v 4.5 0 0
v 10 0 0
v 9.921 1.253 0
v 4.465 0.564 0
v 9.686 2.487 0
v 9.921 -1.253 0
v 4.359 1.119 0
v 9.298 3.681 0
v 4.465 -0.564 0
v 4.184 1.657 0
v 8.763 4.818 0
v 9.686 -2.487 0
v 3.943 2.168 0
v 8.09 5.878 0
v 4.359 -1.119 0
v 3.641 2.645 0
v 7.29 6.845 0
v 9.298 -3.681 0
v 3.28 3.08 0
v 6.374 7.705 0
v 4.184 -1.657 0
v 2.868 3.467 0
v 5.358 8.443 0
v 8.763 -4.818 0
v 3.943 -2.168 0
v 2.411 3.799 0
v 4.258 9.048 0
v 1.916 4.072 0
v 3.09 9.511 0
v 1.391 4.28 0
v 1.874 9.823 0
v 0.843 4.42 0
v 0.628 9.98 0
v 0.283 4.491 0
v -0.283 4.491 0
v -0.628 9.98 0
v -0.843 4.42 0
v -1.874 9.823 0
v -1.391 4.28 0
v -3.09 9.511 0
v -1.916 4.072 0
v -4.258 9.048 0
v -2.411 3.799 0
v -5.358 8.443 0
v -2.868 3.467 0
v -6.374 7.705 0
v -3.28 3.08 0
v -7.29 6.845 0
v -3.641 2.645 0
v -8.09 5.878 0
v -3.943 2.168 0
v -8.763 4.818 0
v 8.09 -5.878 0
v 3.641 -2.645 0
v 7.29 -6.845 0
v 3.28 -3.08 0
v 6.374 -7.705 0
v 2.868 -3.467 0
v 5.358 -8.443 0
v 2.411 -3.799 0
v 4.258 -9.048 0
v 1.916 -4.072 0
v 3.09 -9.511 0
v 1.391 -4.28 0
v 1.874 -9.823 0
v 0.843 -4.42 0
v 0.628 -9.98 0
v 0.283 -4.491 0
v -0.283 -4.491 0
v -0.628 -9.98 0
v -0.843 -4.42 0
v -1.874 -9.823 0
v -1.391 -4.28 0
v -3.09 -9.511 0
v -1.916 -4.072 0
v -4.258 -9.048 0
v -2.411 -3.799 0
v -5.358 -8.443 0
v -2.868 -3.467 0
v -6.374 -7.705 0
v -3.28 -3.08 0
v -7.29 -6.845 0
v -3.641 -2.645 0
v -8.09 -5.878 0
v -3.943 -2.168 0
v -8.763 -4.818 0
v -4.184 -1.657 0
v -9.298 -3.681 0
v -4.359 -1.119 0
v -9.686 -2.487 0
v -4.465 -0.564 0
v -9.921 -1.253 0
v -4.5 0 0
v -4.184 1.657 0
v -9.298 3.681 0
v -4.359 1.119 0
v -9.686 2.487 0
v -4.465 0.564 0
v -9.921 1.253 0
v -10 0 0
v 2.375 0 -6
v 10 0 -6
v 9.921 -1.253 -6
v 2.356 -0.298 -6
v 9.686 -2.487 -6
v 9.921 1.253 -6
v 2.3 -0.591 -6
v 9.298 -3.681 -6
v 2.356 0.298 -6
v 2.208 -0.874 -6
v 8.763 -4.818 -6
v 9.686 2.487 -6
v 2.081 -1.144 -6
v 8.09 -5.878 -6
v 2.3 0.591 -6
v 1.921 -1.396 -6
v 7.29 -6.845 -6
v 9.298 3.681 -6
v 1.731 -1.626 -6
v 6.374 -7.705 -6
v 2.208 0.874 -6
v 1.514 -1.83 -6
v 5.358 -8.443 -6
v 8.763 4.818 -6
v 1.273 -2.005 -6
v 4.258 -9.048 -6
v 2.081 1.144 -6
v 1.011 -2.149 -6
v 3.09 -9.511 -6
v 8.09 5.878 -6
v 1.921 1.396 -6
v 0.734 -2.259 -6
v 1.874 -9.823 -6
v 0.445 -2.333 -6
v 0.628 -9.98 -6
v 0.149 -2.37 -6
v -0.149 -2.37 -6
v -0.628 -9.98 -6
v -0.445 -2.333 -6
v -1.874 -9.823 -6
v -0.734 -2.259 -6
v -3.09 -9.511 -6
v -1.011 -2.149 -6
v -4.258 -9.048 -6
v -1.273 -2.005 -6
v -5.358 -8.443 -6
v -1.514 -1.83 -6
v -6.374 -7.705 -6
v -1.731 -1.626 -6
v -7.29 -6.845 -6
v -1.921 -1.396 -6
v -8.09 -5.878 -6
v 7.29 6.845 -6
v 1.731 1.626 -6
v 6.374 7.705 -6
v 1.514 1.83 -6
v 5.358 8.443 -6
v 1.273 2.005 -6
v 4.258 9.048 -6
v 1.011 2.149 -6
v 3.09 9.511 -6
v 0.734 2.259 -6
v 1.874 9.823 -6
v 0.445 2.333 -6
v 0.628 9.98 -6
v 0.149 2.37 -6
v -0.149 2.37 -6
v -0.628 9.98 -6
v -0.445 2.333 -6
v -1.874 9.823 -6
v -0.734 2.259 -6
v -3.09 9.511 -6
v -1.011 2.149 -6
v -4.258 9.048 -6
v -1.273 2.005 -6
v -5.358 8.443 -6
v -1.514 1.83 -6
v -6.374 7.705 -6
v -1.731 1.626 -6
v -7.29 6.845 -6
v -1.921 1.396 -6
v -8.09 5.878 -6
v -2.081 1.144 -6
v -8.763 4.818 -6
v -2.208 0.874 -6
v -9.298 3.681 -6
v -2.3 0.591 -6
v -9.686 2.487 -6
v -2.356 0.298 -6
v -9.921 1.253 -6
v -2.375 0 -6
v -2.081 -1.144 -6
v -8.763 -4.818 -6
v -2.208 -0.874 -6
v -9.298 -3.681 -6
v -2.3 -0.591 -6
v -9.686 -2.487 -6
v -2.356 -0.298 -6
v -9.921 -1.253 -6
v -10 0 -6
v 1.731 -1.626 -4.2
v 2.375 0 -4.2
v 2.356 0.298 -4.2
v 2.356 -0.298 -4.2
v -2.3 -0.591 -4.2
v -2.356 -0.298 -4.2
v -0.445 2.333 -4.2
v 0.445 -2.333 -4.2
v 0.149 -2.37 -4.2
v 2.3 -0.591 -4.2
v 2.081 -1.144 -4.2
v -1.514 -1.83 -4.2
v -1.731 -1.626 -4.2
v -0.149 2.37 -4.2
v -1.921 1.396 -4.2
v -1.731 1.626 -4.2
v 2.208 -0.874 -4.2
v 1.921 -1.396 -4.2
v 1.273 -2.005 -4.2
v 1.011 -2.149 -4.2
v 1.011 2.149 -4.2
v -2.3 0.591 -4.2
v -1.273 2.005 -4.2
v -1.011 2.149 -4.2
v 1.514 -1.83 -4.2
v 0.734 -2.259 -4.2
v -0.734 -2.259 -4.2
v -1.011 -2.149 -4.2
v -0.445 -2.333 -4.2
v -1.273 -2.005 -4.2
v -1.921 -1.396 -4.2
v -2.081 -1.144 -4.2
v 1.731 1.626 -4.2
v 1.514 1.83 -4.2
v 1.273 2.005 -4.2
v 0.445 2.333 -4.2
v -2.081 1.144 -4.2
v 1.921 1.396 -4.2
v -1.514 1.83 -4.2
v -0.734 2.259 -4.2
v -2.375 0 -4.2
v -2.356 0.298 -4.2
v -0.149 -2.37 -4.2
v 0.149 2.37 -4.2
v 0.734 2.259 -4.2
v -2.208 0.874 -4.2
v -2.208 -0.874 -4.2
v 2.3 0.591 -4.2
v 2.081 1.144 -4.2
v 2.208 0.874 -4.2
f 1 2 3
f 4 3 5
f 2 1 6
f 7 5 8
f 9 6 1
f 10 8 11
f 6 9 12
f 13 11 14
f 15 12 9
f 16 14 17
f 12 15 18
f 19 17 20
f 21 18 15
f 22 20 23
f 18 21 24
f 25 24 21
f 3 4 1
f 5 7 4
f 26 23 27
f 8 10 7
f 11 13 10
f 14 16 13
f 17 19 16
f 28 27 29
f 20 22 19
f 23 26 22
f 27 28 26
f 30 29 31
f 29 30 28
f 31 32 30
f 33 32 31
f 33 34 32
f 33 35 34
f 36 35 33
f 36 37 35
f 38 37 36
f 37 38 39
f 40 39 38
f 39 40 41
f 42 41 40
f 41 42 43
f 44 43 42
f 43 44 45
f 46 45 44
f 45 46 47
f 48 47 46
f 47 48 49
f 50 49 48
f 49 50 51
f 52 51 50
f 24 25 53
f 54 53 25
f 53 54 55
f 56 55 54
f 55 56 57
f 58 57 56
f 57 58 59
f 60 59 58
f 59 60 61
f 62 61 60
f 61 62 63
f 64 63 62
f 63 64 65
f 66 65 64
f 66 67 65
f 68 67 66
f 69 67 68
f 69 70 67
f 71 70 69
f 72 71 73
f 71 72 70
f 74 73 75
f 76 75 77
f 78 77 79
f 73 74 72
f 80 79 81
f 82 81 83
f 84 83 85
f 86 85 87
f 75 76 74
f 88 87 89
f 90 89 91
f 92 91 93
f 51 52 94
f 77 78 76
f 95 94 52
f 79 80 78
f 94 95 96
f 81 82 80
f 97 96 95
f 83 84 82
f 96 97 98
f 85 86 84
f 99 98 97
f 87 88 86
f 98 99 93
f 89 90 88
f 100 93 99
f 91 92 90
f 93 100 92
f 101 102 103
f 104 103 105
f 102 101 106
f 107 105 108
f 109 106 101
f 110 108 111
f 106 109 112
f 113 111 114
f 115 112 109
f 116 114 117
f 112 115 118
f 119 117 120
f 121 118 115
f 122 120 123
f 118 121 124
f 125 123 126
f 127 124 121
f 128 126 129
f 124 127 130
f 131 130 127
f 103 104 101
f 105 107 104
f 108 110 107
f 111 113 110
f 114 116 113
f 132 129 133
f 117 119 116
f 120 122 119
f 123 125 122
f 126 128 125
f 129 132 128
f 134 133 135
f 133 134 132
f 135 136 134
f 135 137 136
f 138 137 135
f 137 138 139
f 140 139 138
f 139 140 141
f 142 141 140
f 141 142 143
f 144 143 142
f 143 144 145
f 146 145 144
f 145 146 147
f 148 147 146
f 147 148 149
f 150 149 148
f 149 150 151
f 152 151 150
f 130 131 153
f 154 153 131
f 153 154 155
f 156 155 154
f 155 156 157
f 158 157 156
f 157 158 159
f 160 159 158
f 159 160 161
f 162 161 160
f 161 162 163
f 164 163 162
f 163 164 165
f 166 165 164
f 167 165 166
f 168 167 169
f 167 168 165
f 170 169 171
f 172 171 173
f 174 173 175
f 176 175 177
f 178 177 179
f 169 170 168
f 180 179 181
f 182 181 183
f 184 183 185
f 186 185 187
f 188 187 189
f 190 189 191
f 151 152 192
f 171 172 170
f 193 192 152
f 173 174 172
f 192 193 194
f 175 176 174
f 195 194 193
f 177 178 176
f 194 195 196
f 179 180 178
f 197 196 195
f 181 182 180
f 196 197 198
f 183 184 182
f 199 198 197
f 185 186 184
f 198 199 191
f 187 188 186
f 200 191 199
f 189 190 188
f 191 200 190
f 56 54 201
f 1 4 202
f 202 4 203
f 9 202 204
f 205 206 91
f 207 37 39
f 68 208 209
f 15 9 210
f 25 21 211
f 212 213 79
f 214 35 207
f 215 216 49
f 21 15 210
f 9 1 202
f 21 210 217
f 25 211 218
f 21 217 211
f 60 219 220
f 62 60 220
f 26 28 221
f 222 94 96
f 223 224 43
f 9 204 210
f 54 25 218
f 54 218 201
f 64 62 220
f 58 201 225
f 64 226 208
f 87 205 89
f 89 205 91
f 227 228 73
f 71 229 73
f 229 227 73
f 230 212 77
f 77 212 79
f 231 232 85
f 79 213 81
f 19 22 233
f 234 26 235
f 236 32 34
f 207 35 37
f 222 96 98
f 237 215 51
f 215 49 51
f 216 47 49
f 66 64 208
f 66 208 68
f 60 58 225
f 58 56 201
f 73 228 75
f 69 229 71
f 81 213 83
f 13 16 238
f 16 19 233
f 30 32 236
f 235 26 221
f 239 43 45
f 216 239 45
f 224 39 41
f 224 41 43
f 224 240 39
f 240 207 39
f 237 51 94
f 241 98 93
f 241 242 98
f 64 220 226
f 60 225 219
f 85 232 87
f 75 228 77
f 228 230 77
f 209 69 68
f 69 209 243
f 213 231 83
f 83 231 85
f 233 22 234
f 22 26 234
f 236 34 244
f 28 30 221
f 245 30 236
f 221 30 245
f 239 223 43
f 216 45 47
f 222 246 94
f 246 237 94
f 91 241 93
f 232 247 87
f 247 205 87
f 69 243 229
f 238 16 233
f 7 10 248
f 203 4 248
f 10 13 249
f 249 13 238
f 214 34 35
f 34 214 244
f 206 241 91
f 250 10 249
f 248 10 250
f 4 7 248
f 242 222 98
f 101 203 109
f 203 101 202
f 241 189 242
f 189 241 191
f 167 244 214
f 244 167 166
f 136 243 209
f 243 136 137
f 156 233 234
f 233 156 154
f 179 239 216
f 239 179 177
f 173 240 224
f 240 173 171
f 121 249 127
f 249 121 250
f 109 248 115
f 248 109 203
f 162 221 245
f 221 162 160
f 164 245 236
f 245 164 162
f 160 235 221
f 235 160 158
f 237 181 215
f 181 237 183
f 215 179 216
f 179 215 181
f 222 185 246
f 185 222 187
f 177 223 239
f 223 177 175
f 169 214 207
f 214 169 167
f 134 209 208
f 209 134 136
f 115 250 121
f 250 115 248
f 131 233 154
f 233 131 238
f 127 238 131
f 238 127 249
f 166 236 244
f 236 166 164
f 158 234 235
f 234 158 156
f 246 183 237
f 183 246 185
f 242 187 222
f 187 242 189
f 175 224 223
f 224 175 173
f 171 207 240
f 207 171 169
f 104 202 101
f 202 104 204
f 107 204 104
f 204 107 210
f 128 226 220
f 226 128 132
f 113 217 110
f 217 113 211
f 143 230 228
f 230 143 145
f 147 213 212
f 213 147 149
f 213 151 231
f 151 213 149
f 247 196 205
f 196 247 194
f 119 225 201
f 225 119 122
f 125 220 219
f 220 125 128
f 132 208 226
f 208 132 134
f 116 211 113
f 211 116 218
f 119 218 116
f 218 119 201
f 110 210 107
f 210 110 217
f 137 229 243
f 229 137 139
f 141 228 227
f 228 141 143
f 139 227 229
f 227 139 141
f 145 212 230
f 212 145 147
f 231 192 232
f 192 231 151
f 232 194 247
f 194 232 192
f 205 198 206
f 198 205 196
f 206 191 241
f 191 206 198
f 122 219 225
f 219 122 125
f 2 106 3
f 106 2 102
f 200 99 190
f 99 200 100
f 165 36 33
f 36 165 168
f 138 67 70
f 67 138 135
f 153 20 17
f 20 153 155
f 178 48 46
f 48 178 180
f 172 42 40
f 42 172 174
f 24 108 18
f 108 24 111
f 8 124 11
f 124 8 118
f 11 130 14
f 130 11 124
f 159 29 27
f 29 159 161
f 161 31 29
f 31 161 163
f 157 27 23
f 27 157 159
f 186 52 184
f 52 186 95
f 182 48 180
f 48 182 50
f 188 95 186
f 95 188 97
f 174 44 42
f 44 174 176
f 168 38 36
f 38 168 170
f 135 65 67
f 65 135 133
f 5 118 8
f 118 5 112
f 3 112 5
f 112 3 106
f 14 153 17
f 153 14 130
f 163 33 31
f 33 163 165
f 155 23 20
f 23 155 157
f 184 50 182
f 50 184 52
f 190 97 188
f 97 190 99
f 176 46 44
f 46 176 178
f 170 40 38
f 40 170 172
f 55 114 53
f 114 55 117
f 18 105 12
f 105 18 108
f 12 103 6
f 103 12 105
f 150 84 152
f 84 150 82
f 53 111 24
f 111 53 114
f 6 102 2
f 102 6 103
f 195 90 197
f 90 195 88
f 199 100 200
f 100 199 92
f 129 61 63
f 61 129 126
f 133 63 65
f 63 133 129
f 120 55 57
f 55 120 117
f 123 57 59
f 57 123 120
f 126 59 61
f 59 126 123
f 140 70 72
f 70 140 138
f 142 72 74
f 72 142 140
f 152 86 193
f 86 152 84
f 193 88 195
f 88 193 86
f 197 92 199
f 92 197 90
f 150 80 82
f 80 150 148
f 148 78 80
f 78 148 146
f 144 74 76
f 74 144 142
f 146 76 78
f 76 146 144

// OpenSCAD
$fn = 50;


difference() {
	union() {
		translate(v = [0, 0, -6.0000000000]) {
			cylinder(h = 6, r = 10.0000000000);
		}
		cylinder(h = 0, r = 16.0000000000);
	}
	union() {
		translate(v = [0, 0, 0]) {
			rotate(a = [0, 0, 0]) {
				difference() {
					union() {
						#translate(v = [0, 0, -6.0000000000]) {
							cylinder(h = 6, r = 2.2500000000);
						}
						#translate(v = [0, 0, -4.2000000000]) {
							cylinder(h = 4.2000000000, r = 10.0000000000, r1 = 2.3750000000, r2 = 4.5000000000);
						}
						#translate(v = [0, 0, -6.0000000000]) {
							cylinder(h = 6, r = 2.3750000000);
						}
						#translate(v = [0, 0, -6.0000000000]) {
							cylinder(h = 6, r = 2.2500000000);
						}
					}
					union();
				}
			}
		}
	}
}
